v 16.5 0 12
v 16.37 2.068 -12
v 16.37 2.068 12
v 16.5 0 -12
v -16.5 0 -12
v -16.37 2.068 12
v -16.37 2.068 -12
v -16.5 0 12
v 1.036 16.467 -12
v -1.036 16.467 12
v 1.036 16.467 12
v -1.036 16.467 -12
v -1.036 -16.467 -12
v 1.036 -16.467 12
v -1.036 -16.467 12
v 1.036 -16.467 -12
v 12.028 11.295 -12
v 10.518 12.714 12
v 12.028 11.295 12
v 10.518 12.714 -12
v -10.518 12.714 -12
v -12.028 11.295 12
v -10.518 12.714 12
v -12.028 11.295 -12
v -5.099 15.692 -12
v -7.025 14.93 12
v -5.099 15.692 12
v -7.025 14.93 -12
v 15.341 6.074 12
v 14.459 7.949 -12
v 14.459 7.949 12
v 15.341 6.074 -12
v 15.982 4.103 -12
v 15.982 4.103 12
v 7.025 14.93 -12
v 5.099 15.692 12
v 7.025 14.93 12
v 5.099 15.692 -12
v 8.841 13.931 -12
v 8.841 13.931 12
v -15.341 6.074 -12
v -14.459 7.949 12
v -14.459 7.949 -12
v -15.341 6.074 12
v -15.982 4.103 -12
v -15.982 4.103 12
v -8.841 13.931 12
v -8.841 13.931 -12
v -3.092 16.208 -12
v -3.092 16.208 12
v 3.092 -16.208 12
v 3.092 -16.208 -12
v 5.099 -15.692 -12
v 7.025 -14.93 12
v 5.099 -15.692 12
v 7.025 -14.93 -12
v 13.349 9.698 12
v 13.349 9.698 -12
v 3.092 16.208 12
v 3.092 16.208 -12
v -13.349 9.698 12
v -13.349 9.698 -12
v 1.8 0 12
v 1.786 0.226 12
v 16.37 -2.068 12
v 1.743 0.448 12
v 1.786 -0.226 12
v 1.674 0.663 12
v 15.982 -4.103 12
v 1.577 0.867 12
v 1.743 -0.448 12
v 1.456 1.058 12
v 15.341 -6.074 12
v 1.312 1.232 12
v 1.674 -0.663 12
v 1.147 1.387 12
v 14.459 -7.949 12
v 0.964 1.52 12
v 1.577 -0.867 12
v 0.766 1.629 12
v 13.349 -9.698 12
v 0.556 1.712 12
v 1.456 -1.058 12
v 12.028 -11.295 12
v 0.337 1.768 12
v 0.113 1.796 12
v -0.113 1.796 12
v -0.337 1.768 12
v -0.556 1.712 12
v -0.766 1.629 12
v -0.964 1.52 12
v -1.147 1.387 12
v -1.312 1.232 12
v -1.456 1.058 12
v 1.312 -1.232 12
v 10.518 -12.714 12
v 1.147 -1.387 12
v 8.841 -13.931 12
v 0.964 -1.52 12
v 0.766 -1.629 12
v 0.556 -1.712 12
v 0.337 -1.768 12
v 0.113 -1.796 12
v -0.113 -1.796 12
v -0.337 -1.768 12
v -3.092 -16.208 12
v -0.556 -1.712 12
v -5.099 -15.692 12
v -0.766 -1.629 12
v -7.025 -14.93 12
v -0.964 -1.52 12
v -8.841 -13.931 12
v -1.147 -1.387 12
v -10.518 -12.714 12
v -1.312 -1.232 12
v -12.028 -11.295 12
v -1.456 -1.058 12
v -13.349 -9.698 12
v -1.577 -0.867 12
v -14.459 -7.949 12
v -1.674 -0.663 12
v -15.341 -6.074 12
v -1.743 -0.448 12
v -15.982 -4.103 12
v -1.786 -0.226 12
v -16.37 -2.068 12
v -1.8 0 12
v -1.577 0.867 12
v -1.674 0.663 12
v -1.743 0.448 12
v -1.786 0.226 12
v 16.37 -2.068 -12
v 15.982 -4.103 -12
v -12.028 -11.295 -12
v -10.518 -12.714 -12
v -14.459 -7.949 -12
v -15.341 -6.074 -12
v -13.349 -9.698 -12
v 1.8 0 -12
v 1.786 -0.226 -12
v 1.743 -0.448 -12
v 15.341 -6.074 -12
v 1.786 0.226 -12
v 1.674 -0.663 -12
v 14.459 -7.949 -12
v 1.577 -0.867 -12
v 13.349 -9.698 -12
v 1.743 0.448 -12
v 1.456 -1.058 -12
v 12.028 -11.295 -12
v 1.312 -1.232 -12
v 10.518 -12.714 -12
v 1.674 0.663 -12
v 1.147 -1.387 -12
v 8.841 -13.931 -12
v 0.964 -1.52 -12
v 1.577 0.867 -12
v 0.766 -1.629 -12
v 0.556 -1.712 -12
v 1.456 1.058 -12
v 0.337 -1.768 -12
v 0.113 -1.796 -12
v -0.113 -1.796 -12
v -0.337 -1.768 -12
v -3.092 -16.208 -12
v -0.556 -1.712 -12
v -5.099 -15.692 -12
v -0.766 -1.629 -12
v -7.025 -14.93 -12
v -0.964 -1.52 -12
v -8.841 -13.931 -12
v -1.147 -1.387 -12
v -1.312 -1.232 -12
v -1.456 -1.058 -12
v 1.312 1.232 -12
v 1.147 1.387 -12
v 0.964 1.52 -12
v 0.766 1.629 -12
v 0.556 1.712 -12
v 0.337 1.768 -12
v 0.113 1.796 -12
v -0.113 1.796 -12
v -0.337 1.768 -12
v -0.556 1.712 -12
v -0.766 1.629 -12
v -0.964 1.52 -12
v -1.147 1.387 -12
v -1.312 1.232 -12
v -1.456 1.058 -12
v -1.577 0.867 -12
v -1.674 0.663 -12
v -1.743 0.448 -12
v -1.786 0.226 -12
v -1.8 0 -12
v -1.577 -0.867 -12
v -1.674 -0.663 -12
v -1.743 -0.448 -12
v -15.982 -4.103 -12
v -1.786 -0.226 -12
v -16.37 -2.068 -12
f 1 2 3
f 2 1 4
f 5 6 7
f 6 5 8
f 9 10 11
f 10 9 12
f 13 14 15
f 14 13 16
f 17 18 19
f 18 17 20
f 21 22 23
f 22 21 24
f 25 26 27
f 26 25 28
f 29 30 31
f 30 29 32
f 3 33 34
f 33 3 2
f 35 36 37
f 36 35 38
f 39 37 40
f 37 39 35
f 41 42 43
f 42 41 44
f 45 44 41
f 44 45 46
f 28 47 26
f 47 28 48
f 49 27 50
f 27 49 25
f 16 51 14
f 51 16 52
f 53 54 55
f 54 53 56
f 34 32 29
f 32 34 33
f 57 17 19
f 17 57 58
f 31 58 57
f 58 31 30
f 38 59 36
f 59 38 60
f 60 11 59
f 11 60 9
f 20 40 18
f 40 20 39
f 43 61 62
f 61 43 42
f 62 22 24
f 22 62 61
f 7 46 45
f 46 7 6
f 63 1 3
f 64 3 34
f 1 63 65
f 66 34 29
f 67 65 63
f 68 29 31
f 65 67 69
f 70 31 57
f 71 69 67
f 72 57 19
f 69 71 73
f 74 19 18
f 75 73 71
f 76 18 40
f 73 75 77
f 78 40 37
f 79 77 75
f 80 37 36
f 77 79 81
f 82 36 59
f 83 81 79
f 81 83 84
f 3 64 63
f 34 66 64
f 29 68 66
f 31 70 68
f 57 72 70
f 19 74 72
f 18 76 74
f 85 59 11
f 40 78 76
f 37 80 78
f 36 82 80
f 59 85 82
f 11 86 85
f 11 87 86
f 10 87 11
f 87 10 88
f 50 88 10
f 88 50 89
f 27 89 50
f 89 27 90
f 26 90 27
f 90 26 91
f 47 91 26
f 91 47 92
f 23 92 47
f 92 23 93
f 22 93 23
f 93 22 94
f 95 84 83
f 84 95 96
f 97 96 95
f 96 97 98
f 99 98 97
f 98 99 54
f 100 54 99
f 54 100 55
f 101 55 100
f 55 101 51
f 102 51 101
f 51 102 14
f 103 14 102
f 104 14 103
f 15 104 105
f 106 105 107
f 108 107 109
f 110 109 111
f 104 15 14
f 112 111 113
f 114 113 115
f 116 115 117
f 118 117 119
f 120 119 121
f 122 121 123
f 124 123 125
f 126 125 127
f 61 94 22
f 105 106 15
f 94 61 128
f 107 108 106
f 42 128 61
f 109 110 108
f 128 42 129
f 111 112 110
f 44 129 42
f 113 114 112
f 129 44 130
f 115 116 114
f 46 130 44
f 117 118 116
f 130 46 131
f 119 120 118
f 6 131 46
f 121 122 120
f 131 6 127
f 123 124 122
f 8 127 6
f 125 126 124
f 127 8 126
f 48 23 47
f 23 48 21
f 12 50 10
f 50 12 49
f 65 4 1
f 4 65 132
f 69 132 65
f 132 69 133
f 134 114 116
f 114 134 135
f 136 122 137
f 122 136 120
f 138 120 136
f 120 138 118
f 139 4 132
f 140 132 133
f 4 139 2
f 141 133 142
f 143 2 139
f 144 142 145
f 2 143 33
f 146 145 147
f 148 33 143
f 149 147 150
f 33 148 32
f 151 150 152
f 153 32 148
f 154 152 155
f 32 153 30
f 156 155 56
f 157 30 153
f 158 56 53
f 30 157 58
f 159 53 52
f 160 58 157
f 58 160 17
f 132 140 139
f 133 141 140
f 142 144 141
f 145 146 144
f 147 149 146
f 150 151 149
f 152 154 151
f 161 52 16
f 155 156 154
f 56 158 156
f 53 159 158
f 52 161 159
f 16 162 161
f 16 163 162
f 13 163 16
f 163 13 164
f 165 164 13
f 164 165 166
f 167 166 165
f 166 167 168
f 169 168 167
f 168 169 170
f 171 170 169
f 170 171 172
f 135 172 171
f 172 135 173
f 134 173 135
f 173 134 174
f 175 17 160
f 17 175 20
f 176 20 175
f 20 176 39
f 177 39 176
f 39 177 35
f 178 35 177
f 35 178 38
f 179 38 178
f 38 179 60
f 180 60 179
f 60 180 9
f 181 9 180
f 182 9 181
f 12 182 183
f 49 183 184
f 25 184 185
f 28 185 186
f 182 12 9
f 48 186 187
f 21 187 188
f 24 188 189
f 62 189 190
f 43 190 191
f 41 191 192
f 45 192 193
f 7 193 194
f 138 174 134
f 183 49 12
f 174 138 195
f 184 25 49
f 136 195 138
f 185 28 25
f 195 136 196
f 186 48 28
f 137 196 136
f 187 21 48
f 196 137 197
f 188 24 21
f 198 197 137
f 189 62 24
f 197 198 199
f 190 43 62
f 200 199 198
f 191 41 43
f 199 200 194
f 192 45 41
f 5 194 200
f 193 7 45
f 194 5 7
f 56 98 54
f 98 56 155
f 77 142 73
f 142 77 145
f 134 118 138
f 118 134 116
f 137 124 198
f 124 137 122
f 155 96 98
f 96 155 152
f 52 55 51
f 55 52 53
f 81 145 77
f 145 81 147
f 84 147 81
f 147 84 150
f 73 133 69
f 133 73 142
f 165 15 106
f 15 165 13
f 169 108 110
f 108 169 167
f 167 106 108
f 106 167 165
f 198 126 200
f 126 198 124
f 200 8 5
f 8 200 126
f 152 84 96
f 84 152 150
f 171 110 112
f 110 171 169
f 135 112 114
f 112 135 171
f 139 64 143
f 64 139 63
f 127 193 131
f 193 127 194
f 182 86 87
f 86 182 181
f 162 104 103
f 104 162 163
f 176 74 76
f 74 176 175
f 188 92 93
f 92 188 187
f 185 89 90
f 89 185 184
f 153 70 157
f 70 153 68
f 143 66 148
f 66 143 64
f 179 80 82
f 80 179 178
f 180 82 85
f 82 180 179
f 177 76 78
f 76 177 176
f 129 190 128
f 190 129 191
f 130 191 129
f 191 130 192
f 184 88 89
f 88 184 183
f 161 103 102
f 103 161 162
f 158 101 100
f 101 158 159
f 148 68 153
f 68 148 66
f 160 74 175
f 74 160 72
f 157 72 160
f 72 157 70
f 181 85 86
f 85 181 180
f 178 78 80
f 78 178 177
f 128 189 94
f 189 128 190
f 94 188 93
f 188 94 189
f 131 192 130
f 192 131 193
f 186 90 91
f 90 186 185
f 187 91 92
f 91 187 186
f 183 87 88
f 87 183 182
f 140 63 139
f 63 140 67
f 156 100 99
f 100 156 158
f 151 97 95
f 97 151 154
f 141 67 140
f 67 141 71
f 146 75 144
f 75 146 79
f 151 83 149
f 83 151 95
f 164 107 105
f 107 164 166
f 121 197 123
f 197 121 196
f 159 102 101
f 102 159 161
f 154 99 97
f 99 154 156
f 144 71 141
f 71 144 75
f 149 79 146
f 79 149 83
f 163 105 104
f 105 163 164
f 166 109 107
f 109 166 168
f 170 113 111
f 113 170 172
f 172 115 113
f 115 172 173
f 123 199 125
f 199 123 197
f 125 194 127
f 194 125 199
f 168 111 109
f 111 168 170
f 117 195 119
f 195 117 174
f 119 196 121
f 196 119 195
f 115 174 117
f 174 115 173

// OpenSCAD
$fn = 50;


difference() {
	union() {
		translate(v = [0, 0, -12.0000000000]) {
			cylinder(h = 24, r = 16.5000000000);
		}
	}
	union() {
		translate(v = [0, 0, -100.0000000000]) {
			cylinder(h = 200, r = 1.8000000000);
		}
	}
}
